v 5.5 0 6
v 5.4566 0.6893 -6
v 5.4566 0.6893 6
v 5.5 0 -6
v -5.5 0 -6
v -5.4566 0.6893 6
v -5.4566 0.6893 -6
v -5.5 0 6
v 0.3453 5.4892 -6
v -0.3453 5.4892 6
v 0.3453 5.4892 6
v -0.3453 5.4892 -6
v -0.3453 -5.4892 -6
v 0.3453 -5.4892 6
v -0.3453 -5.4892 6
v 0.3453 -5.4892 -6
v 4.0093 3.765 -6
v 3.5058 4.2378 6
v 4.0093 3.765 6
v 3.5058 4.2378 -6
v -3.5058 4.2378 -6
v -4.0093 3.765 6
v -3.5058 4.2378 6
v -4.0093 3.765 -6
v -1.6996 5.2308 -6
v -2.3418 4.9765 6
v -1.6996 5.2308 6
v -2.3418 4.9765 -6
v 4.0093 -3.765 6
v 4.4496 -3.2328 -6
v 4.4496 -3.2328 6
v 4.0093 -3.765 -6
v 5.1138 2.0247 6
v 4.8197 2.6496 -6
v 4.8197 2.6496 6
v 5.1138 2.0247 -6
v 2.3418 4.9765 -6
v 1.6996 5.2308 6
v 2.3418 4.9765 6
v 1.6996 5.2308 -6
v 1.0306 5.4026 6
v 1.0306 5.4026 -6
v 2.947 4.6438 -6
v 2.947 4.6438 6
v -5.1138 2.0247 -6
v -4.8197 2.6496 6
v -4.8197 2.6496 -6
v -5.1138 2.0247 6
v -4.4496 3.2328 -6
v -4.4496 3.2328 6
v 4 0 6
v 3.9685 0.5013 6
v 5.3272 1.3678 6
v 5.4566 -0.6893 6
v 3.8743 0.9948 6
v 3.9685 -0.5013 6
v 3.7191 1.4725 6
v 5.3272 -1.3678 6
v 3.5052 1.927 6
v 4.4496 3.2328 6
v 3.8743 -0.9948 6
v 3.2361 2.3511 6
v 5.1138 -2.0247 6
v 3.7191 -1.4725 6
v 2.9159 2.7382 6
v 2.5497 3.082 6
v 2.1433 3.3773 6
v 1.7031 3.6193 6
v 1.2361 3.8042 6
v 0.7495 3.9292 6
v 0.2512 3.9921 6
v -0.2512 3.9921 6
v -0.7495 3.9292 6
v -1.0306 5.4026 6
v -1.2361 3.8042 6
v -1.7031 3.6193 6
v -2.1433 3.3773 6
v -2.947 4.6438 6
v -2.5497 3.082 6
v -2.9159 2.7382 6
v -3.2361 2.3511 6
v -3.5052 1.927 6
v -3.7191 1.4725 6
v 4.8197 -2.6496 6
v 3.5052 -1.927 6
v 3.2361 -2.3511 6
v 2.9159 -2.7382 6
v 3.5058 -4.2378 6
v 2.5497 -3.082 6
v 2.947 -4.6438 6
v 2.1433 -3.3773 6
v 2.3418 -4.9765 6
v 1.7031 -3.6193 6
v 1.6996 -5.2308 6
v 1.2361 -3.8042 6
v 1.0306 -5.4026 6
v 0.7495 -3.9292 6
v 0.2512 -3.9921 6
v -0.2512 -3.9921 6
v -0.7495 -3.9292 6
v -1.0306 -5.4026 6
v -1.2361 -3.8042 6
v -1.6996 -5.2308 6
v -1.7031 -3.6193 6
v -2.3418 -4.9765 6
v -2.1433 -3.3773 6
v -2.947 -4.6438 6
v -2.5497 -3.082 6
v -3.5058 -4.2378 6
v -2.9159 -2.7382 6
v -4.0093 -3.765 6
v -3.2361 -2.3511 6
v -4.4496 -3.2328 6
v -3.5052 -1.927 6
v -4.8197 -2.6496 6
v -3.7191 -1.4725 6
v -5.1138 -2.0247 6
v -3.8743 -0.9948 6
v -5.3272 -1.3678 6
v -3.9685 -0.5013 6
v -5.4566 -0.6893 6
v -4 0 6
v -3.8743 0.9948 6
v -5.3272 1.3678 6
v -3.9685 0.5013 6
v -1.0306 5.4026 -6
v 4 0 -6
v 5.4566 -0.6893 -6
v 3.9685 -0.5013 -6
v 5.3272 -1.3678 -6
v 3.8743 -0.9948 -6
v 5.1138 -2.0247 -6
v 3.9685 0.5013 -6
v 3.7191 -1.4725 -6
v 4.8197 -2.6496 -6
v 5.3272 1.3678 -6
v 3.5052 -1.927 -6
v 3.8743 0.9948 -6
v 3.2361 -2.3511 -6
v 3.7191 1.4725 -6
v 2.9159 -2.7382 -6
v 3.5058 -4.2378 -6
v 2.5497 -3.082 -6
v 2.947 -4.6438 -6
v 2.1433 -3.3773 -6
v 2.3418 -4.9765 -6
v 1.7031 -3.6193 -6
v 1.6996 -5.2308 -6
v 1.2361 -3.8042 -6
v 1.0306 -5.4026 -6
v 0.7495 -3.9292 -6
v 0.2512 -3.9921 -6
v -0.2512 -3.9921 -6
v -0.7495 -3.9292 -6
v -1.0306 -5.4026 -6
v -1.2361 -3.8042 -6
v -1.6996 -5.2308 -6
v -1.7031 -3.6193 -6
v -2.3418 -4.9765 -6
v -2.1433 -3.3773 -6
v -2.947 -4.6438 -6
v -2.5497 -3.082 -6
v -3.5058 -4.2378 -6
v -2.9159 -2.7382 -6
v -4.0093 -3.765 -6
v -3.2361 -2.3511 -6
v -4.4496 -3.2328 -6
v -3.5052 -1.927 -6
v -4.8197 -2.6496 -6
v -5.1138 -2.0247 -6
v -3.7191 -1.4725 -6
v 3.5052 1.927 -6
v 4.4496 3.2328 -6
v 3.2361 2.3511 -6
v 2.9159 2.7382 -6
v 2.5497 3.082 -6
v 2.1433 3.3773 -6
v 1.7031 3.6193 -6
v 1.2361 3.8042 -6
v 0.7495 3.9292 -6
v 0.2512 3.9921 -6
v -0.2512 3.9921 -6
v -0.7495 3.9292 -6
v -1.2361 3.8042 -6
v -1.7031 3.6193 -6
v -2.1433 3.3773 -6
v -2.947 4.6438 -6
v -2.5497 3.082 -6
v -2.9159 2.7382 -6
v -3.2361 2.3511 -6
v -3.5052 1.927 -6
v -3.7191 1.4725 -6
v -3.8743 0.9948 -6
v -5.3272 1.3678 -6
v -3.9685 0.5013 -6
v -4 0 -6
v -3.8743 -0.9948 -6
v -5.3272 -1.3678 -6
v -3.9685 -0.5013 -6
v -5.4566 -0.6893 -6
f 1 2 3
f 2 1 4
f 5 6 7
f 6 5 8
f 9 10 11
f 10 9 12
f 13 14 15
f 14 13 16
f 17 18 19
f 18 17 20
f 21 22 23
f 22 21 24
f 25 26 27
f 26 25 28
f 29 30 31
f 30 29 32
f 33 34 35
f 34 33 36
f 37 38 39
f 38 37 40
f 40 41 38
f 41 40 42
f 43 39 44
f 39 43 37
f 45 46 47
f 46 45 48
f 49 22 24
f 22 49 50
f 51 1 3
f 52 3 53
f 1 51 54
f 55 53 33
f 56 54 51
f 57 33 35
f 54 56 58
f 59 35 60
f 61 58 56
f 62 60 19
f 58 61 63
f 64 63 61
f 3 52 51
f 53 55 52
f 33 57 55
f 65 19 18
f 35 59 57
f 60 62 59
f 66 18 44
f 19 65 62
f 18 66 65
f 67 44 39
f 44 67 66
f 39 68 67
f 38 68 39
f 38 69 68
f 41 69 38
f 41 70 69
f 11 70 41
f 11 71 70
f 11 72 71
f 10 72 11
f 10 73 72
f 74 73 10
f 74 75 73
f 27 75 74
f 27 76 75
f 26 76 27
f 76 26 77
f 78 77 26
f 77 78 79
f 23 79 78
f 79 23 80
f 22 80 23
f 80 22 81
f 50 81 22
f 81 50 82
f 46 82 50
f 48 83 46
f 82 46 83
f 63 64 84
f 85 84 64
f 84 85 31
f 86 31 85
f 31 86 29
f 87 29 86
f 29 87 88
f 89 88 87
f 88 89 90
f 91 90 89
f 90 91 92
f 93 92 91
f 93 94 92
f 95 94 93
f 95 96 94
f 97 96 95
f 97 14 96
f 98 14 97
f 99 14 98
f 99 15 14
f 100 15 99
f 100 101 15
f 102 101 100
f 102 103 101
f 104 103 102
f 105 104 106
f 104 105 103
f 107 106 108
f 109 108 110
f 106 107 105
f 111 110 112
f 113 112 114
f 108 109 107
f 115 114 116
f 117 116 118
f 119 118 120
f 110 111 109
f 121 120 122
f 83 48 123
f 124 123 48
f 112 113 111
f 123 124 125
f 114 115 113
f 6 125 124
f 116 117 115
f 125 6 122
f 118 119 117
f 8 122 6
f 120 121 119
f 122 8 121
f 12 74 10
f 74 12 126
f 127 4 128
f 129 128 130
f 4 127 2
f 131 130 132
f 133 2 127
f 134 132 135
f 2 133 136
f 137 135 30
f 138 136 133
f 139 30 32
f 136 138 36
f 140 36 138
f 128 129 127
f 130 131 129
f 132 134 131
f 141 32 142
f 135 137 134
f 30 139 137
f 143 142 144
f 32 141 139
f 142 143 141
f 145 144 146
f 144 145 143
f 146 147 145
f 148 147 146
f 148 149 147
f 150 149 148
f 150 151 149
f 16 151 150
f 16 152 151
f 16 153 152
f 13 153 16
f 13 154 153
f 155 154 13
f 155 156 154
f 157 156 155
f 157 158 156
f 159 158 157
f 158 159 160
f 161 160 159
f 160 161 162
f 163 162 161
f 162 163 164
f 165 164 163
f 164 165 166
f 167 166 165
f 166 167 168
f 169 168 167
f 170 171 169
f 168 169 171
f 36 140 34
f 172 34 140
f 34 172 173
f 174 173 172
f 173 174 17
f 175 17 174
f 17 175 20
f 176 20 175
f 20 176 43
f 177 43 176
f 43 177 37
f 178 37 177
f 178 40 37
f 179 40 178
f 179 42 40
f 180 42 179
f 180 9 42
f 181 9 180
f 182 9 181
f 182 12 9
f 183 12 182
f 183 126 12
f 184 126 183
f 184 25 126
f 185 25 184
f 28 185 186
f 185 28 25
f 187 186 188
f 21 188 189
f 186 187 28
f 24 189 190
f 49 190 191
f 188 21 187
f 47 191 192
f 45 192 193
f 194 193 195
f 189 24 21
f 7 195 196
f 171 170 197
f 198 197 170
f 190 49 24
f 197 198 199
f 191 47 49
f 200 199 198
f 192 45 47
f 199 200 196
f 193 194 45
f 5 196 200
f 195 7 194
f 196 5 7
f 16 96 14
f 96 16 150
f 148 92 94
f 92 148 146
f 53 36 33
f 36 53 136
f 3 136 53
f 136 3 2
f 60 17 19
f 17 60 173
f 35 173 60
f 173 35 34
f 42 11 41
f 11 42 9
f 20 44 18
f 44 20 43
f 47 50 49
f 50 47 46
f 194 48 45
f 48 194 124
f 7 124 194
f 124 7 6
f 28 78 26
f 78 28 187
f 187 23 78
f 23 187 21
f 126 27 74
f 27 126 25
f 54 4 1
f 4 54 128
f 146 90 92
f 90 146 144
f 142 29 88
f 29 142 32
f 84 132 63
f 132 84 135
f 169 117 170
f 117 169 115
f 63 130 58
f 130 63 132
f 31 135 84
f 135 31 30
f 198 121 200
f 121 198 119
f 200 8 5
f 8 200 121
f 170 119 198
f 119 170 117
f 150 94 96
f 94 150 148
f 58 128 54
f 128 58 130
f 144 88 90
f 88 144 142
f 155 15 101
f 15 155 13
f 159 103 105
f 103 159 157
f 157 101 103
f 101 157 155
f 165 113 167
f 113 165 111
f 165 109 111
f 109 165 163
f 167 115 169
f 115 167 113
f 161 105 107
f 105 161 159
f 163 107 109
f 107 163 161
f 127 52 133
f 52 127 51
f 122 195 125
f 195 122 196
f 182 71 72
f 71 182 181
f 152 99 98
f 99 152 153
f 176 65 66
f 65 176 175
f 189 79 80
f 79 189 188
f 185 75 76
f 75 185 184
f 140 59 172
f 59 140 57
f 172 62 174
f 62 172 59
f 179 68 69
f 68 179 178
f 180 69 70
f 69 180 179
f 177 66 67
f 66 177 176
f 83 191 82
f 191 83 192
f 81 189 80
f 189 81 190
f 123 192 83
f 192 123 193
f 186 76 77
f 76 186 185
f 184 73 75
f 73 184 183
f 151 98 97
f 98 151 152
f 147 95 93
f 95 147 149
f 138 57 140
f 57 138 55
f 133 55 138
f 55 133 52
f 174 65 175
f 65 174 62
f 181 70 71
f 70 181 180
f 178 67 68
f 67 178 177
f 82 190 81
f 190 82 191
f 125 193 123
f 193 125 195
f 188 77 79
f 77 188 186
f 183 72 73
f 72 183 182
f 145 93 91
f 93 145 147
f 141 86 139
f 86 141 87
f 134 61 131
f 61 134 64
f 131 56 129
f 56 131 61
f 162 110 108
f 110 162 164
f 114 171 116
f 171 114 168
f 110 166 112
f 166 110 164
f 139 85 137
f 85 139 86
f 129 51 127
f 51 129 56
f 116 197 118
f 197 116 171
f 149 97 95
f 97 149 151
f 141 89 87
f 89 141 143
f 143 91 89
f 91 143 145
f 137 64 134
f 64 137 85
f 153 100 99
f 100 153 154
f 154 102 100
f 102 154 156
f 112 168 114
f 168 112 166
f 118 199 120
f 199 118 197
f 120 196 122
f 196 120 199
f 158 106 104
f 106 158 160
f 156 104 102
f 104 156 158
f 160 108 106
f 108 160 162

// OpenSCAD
$fn = 50;


difference() {
	union() {
		translate(v = [0, 0, -6.0000000000]) {
			cylinder(h = 12, r = 5.5000000000);
		}
	}
	union() {
		translate(v = [0, 0, -100.0000000000]) {
			cylinder(h = 200, r = 4);
		}
	}
}
